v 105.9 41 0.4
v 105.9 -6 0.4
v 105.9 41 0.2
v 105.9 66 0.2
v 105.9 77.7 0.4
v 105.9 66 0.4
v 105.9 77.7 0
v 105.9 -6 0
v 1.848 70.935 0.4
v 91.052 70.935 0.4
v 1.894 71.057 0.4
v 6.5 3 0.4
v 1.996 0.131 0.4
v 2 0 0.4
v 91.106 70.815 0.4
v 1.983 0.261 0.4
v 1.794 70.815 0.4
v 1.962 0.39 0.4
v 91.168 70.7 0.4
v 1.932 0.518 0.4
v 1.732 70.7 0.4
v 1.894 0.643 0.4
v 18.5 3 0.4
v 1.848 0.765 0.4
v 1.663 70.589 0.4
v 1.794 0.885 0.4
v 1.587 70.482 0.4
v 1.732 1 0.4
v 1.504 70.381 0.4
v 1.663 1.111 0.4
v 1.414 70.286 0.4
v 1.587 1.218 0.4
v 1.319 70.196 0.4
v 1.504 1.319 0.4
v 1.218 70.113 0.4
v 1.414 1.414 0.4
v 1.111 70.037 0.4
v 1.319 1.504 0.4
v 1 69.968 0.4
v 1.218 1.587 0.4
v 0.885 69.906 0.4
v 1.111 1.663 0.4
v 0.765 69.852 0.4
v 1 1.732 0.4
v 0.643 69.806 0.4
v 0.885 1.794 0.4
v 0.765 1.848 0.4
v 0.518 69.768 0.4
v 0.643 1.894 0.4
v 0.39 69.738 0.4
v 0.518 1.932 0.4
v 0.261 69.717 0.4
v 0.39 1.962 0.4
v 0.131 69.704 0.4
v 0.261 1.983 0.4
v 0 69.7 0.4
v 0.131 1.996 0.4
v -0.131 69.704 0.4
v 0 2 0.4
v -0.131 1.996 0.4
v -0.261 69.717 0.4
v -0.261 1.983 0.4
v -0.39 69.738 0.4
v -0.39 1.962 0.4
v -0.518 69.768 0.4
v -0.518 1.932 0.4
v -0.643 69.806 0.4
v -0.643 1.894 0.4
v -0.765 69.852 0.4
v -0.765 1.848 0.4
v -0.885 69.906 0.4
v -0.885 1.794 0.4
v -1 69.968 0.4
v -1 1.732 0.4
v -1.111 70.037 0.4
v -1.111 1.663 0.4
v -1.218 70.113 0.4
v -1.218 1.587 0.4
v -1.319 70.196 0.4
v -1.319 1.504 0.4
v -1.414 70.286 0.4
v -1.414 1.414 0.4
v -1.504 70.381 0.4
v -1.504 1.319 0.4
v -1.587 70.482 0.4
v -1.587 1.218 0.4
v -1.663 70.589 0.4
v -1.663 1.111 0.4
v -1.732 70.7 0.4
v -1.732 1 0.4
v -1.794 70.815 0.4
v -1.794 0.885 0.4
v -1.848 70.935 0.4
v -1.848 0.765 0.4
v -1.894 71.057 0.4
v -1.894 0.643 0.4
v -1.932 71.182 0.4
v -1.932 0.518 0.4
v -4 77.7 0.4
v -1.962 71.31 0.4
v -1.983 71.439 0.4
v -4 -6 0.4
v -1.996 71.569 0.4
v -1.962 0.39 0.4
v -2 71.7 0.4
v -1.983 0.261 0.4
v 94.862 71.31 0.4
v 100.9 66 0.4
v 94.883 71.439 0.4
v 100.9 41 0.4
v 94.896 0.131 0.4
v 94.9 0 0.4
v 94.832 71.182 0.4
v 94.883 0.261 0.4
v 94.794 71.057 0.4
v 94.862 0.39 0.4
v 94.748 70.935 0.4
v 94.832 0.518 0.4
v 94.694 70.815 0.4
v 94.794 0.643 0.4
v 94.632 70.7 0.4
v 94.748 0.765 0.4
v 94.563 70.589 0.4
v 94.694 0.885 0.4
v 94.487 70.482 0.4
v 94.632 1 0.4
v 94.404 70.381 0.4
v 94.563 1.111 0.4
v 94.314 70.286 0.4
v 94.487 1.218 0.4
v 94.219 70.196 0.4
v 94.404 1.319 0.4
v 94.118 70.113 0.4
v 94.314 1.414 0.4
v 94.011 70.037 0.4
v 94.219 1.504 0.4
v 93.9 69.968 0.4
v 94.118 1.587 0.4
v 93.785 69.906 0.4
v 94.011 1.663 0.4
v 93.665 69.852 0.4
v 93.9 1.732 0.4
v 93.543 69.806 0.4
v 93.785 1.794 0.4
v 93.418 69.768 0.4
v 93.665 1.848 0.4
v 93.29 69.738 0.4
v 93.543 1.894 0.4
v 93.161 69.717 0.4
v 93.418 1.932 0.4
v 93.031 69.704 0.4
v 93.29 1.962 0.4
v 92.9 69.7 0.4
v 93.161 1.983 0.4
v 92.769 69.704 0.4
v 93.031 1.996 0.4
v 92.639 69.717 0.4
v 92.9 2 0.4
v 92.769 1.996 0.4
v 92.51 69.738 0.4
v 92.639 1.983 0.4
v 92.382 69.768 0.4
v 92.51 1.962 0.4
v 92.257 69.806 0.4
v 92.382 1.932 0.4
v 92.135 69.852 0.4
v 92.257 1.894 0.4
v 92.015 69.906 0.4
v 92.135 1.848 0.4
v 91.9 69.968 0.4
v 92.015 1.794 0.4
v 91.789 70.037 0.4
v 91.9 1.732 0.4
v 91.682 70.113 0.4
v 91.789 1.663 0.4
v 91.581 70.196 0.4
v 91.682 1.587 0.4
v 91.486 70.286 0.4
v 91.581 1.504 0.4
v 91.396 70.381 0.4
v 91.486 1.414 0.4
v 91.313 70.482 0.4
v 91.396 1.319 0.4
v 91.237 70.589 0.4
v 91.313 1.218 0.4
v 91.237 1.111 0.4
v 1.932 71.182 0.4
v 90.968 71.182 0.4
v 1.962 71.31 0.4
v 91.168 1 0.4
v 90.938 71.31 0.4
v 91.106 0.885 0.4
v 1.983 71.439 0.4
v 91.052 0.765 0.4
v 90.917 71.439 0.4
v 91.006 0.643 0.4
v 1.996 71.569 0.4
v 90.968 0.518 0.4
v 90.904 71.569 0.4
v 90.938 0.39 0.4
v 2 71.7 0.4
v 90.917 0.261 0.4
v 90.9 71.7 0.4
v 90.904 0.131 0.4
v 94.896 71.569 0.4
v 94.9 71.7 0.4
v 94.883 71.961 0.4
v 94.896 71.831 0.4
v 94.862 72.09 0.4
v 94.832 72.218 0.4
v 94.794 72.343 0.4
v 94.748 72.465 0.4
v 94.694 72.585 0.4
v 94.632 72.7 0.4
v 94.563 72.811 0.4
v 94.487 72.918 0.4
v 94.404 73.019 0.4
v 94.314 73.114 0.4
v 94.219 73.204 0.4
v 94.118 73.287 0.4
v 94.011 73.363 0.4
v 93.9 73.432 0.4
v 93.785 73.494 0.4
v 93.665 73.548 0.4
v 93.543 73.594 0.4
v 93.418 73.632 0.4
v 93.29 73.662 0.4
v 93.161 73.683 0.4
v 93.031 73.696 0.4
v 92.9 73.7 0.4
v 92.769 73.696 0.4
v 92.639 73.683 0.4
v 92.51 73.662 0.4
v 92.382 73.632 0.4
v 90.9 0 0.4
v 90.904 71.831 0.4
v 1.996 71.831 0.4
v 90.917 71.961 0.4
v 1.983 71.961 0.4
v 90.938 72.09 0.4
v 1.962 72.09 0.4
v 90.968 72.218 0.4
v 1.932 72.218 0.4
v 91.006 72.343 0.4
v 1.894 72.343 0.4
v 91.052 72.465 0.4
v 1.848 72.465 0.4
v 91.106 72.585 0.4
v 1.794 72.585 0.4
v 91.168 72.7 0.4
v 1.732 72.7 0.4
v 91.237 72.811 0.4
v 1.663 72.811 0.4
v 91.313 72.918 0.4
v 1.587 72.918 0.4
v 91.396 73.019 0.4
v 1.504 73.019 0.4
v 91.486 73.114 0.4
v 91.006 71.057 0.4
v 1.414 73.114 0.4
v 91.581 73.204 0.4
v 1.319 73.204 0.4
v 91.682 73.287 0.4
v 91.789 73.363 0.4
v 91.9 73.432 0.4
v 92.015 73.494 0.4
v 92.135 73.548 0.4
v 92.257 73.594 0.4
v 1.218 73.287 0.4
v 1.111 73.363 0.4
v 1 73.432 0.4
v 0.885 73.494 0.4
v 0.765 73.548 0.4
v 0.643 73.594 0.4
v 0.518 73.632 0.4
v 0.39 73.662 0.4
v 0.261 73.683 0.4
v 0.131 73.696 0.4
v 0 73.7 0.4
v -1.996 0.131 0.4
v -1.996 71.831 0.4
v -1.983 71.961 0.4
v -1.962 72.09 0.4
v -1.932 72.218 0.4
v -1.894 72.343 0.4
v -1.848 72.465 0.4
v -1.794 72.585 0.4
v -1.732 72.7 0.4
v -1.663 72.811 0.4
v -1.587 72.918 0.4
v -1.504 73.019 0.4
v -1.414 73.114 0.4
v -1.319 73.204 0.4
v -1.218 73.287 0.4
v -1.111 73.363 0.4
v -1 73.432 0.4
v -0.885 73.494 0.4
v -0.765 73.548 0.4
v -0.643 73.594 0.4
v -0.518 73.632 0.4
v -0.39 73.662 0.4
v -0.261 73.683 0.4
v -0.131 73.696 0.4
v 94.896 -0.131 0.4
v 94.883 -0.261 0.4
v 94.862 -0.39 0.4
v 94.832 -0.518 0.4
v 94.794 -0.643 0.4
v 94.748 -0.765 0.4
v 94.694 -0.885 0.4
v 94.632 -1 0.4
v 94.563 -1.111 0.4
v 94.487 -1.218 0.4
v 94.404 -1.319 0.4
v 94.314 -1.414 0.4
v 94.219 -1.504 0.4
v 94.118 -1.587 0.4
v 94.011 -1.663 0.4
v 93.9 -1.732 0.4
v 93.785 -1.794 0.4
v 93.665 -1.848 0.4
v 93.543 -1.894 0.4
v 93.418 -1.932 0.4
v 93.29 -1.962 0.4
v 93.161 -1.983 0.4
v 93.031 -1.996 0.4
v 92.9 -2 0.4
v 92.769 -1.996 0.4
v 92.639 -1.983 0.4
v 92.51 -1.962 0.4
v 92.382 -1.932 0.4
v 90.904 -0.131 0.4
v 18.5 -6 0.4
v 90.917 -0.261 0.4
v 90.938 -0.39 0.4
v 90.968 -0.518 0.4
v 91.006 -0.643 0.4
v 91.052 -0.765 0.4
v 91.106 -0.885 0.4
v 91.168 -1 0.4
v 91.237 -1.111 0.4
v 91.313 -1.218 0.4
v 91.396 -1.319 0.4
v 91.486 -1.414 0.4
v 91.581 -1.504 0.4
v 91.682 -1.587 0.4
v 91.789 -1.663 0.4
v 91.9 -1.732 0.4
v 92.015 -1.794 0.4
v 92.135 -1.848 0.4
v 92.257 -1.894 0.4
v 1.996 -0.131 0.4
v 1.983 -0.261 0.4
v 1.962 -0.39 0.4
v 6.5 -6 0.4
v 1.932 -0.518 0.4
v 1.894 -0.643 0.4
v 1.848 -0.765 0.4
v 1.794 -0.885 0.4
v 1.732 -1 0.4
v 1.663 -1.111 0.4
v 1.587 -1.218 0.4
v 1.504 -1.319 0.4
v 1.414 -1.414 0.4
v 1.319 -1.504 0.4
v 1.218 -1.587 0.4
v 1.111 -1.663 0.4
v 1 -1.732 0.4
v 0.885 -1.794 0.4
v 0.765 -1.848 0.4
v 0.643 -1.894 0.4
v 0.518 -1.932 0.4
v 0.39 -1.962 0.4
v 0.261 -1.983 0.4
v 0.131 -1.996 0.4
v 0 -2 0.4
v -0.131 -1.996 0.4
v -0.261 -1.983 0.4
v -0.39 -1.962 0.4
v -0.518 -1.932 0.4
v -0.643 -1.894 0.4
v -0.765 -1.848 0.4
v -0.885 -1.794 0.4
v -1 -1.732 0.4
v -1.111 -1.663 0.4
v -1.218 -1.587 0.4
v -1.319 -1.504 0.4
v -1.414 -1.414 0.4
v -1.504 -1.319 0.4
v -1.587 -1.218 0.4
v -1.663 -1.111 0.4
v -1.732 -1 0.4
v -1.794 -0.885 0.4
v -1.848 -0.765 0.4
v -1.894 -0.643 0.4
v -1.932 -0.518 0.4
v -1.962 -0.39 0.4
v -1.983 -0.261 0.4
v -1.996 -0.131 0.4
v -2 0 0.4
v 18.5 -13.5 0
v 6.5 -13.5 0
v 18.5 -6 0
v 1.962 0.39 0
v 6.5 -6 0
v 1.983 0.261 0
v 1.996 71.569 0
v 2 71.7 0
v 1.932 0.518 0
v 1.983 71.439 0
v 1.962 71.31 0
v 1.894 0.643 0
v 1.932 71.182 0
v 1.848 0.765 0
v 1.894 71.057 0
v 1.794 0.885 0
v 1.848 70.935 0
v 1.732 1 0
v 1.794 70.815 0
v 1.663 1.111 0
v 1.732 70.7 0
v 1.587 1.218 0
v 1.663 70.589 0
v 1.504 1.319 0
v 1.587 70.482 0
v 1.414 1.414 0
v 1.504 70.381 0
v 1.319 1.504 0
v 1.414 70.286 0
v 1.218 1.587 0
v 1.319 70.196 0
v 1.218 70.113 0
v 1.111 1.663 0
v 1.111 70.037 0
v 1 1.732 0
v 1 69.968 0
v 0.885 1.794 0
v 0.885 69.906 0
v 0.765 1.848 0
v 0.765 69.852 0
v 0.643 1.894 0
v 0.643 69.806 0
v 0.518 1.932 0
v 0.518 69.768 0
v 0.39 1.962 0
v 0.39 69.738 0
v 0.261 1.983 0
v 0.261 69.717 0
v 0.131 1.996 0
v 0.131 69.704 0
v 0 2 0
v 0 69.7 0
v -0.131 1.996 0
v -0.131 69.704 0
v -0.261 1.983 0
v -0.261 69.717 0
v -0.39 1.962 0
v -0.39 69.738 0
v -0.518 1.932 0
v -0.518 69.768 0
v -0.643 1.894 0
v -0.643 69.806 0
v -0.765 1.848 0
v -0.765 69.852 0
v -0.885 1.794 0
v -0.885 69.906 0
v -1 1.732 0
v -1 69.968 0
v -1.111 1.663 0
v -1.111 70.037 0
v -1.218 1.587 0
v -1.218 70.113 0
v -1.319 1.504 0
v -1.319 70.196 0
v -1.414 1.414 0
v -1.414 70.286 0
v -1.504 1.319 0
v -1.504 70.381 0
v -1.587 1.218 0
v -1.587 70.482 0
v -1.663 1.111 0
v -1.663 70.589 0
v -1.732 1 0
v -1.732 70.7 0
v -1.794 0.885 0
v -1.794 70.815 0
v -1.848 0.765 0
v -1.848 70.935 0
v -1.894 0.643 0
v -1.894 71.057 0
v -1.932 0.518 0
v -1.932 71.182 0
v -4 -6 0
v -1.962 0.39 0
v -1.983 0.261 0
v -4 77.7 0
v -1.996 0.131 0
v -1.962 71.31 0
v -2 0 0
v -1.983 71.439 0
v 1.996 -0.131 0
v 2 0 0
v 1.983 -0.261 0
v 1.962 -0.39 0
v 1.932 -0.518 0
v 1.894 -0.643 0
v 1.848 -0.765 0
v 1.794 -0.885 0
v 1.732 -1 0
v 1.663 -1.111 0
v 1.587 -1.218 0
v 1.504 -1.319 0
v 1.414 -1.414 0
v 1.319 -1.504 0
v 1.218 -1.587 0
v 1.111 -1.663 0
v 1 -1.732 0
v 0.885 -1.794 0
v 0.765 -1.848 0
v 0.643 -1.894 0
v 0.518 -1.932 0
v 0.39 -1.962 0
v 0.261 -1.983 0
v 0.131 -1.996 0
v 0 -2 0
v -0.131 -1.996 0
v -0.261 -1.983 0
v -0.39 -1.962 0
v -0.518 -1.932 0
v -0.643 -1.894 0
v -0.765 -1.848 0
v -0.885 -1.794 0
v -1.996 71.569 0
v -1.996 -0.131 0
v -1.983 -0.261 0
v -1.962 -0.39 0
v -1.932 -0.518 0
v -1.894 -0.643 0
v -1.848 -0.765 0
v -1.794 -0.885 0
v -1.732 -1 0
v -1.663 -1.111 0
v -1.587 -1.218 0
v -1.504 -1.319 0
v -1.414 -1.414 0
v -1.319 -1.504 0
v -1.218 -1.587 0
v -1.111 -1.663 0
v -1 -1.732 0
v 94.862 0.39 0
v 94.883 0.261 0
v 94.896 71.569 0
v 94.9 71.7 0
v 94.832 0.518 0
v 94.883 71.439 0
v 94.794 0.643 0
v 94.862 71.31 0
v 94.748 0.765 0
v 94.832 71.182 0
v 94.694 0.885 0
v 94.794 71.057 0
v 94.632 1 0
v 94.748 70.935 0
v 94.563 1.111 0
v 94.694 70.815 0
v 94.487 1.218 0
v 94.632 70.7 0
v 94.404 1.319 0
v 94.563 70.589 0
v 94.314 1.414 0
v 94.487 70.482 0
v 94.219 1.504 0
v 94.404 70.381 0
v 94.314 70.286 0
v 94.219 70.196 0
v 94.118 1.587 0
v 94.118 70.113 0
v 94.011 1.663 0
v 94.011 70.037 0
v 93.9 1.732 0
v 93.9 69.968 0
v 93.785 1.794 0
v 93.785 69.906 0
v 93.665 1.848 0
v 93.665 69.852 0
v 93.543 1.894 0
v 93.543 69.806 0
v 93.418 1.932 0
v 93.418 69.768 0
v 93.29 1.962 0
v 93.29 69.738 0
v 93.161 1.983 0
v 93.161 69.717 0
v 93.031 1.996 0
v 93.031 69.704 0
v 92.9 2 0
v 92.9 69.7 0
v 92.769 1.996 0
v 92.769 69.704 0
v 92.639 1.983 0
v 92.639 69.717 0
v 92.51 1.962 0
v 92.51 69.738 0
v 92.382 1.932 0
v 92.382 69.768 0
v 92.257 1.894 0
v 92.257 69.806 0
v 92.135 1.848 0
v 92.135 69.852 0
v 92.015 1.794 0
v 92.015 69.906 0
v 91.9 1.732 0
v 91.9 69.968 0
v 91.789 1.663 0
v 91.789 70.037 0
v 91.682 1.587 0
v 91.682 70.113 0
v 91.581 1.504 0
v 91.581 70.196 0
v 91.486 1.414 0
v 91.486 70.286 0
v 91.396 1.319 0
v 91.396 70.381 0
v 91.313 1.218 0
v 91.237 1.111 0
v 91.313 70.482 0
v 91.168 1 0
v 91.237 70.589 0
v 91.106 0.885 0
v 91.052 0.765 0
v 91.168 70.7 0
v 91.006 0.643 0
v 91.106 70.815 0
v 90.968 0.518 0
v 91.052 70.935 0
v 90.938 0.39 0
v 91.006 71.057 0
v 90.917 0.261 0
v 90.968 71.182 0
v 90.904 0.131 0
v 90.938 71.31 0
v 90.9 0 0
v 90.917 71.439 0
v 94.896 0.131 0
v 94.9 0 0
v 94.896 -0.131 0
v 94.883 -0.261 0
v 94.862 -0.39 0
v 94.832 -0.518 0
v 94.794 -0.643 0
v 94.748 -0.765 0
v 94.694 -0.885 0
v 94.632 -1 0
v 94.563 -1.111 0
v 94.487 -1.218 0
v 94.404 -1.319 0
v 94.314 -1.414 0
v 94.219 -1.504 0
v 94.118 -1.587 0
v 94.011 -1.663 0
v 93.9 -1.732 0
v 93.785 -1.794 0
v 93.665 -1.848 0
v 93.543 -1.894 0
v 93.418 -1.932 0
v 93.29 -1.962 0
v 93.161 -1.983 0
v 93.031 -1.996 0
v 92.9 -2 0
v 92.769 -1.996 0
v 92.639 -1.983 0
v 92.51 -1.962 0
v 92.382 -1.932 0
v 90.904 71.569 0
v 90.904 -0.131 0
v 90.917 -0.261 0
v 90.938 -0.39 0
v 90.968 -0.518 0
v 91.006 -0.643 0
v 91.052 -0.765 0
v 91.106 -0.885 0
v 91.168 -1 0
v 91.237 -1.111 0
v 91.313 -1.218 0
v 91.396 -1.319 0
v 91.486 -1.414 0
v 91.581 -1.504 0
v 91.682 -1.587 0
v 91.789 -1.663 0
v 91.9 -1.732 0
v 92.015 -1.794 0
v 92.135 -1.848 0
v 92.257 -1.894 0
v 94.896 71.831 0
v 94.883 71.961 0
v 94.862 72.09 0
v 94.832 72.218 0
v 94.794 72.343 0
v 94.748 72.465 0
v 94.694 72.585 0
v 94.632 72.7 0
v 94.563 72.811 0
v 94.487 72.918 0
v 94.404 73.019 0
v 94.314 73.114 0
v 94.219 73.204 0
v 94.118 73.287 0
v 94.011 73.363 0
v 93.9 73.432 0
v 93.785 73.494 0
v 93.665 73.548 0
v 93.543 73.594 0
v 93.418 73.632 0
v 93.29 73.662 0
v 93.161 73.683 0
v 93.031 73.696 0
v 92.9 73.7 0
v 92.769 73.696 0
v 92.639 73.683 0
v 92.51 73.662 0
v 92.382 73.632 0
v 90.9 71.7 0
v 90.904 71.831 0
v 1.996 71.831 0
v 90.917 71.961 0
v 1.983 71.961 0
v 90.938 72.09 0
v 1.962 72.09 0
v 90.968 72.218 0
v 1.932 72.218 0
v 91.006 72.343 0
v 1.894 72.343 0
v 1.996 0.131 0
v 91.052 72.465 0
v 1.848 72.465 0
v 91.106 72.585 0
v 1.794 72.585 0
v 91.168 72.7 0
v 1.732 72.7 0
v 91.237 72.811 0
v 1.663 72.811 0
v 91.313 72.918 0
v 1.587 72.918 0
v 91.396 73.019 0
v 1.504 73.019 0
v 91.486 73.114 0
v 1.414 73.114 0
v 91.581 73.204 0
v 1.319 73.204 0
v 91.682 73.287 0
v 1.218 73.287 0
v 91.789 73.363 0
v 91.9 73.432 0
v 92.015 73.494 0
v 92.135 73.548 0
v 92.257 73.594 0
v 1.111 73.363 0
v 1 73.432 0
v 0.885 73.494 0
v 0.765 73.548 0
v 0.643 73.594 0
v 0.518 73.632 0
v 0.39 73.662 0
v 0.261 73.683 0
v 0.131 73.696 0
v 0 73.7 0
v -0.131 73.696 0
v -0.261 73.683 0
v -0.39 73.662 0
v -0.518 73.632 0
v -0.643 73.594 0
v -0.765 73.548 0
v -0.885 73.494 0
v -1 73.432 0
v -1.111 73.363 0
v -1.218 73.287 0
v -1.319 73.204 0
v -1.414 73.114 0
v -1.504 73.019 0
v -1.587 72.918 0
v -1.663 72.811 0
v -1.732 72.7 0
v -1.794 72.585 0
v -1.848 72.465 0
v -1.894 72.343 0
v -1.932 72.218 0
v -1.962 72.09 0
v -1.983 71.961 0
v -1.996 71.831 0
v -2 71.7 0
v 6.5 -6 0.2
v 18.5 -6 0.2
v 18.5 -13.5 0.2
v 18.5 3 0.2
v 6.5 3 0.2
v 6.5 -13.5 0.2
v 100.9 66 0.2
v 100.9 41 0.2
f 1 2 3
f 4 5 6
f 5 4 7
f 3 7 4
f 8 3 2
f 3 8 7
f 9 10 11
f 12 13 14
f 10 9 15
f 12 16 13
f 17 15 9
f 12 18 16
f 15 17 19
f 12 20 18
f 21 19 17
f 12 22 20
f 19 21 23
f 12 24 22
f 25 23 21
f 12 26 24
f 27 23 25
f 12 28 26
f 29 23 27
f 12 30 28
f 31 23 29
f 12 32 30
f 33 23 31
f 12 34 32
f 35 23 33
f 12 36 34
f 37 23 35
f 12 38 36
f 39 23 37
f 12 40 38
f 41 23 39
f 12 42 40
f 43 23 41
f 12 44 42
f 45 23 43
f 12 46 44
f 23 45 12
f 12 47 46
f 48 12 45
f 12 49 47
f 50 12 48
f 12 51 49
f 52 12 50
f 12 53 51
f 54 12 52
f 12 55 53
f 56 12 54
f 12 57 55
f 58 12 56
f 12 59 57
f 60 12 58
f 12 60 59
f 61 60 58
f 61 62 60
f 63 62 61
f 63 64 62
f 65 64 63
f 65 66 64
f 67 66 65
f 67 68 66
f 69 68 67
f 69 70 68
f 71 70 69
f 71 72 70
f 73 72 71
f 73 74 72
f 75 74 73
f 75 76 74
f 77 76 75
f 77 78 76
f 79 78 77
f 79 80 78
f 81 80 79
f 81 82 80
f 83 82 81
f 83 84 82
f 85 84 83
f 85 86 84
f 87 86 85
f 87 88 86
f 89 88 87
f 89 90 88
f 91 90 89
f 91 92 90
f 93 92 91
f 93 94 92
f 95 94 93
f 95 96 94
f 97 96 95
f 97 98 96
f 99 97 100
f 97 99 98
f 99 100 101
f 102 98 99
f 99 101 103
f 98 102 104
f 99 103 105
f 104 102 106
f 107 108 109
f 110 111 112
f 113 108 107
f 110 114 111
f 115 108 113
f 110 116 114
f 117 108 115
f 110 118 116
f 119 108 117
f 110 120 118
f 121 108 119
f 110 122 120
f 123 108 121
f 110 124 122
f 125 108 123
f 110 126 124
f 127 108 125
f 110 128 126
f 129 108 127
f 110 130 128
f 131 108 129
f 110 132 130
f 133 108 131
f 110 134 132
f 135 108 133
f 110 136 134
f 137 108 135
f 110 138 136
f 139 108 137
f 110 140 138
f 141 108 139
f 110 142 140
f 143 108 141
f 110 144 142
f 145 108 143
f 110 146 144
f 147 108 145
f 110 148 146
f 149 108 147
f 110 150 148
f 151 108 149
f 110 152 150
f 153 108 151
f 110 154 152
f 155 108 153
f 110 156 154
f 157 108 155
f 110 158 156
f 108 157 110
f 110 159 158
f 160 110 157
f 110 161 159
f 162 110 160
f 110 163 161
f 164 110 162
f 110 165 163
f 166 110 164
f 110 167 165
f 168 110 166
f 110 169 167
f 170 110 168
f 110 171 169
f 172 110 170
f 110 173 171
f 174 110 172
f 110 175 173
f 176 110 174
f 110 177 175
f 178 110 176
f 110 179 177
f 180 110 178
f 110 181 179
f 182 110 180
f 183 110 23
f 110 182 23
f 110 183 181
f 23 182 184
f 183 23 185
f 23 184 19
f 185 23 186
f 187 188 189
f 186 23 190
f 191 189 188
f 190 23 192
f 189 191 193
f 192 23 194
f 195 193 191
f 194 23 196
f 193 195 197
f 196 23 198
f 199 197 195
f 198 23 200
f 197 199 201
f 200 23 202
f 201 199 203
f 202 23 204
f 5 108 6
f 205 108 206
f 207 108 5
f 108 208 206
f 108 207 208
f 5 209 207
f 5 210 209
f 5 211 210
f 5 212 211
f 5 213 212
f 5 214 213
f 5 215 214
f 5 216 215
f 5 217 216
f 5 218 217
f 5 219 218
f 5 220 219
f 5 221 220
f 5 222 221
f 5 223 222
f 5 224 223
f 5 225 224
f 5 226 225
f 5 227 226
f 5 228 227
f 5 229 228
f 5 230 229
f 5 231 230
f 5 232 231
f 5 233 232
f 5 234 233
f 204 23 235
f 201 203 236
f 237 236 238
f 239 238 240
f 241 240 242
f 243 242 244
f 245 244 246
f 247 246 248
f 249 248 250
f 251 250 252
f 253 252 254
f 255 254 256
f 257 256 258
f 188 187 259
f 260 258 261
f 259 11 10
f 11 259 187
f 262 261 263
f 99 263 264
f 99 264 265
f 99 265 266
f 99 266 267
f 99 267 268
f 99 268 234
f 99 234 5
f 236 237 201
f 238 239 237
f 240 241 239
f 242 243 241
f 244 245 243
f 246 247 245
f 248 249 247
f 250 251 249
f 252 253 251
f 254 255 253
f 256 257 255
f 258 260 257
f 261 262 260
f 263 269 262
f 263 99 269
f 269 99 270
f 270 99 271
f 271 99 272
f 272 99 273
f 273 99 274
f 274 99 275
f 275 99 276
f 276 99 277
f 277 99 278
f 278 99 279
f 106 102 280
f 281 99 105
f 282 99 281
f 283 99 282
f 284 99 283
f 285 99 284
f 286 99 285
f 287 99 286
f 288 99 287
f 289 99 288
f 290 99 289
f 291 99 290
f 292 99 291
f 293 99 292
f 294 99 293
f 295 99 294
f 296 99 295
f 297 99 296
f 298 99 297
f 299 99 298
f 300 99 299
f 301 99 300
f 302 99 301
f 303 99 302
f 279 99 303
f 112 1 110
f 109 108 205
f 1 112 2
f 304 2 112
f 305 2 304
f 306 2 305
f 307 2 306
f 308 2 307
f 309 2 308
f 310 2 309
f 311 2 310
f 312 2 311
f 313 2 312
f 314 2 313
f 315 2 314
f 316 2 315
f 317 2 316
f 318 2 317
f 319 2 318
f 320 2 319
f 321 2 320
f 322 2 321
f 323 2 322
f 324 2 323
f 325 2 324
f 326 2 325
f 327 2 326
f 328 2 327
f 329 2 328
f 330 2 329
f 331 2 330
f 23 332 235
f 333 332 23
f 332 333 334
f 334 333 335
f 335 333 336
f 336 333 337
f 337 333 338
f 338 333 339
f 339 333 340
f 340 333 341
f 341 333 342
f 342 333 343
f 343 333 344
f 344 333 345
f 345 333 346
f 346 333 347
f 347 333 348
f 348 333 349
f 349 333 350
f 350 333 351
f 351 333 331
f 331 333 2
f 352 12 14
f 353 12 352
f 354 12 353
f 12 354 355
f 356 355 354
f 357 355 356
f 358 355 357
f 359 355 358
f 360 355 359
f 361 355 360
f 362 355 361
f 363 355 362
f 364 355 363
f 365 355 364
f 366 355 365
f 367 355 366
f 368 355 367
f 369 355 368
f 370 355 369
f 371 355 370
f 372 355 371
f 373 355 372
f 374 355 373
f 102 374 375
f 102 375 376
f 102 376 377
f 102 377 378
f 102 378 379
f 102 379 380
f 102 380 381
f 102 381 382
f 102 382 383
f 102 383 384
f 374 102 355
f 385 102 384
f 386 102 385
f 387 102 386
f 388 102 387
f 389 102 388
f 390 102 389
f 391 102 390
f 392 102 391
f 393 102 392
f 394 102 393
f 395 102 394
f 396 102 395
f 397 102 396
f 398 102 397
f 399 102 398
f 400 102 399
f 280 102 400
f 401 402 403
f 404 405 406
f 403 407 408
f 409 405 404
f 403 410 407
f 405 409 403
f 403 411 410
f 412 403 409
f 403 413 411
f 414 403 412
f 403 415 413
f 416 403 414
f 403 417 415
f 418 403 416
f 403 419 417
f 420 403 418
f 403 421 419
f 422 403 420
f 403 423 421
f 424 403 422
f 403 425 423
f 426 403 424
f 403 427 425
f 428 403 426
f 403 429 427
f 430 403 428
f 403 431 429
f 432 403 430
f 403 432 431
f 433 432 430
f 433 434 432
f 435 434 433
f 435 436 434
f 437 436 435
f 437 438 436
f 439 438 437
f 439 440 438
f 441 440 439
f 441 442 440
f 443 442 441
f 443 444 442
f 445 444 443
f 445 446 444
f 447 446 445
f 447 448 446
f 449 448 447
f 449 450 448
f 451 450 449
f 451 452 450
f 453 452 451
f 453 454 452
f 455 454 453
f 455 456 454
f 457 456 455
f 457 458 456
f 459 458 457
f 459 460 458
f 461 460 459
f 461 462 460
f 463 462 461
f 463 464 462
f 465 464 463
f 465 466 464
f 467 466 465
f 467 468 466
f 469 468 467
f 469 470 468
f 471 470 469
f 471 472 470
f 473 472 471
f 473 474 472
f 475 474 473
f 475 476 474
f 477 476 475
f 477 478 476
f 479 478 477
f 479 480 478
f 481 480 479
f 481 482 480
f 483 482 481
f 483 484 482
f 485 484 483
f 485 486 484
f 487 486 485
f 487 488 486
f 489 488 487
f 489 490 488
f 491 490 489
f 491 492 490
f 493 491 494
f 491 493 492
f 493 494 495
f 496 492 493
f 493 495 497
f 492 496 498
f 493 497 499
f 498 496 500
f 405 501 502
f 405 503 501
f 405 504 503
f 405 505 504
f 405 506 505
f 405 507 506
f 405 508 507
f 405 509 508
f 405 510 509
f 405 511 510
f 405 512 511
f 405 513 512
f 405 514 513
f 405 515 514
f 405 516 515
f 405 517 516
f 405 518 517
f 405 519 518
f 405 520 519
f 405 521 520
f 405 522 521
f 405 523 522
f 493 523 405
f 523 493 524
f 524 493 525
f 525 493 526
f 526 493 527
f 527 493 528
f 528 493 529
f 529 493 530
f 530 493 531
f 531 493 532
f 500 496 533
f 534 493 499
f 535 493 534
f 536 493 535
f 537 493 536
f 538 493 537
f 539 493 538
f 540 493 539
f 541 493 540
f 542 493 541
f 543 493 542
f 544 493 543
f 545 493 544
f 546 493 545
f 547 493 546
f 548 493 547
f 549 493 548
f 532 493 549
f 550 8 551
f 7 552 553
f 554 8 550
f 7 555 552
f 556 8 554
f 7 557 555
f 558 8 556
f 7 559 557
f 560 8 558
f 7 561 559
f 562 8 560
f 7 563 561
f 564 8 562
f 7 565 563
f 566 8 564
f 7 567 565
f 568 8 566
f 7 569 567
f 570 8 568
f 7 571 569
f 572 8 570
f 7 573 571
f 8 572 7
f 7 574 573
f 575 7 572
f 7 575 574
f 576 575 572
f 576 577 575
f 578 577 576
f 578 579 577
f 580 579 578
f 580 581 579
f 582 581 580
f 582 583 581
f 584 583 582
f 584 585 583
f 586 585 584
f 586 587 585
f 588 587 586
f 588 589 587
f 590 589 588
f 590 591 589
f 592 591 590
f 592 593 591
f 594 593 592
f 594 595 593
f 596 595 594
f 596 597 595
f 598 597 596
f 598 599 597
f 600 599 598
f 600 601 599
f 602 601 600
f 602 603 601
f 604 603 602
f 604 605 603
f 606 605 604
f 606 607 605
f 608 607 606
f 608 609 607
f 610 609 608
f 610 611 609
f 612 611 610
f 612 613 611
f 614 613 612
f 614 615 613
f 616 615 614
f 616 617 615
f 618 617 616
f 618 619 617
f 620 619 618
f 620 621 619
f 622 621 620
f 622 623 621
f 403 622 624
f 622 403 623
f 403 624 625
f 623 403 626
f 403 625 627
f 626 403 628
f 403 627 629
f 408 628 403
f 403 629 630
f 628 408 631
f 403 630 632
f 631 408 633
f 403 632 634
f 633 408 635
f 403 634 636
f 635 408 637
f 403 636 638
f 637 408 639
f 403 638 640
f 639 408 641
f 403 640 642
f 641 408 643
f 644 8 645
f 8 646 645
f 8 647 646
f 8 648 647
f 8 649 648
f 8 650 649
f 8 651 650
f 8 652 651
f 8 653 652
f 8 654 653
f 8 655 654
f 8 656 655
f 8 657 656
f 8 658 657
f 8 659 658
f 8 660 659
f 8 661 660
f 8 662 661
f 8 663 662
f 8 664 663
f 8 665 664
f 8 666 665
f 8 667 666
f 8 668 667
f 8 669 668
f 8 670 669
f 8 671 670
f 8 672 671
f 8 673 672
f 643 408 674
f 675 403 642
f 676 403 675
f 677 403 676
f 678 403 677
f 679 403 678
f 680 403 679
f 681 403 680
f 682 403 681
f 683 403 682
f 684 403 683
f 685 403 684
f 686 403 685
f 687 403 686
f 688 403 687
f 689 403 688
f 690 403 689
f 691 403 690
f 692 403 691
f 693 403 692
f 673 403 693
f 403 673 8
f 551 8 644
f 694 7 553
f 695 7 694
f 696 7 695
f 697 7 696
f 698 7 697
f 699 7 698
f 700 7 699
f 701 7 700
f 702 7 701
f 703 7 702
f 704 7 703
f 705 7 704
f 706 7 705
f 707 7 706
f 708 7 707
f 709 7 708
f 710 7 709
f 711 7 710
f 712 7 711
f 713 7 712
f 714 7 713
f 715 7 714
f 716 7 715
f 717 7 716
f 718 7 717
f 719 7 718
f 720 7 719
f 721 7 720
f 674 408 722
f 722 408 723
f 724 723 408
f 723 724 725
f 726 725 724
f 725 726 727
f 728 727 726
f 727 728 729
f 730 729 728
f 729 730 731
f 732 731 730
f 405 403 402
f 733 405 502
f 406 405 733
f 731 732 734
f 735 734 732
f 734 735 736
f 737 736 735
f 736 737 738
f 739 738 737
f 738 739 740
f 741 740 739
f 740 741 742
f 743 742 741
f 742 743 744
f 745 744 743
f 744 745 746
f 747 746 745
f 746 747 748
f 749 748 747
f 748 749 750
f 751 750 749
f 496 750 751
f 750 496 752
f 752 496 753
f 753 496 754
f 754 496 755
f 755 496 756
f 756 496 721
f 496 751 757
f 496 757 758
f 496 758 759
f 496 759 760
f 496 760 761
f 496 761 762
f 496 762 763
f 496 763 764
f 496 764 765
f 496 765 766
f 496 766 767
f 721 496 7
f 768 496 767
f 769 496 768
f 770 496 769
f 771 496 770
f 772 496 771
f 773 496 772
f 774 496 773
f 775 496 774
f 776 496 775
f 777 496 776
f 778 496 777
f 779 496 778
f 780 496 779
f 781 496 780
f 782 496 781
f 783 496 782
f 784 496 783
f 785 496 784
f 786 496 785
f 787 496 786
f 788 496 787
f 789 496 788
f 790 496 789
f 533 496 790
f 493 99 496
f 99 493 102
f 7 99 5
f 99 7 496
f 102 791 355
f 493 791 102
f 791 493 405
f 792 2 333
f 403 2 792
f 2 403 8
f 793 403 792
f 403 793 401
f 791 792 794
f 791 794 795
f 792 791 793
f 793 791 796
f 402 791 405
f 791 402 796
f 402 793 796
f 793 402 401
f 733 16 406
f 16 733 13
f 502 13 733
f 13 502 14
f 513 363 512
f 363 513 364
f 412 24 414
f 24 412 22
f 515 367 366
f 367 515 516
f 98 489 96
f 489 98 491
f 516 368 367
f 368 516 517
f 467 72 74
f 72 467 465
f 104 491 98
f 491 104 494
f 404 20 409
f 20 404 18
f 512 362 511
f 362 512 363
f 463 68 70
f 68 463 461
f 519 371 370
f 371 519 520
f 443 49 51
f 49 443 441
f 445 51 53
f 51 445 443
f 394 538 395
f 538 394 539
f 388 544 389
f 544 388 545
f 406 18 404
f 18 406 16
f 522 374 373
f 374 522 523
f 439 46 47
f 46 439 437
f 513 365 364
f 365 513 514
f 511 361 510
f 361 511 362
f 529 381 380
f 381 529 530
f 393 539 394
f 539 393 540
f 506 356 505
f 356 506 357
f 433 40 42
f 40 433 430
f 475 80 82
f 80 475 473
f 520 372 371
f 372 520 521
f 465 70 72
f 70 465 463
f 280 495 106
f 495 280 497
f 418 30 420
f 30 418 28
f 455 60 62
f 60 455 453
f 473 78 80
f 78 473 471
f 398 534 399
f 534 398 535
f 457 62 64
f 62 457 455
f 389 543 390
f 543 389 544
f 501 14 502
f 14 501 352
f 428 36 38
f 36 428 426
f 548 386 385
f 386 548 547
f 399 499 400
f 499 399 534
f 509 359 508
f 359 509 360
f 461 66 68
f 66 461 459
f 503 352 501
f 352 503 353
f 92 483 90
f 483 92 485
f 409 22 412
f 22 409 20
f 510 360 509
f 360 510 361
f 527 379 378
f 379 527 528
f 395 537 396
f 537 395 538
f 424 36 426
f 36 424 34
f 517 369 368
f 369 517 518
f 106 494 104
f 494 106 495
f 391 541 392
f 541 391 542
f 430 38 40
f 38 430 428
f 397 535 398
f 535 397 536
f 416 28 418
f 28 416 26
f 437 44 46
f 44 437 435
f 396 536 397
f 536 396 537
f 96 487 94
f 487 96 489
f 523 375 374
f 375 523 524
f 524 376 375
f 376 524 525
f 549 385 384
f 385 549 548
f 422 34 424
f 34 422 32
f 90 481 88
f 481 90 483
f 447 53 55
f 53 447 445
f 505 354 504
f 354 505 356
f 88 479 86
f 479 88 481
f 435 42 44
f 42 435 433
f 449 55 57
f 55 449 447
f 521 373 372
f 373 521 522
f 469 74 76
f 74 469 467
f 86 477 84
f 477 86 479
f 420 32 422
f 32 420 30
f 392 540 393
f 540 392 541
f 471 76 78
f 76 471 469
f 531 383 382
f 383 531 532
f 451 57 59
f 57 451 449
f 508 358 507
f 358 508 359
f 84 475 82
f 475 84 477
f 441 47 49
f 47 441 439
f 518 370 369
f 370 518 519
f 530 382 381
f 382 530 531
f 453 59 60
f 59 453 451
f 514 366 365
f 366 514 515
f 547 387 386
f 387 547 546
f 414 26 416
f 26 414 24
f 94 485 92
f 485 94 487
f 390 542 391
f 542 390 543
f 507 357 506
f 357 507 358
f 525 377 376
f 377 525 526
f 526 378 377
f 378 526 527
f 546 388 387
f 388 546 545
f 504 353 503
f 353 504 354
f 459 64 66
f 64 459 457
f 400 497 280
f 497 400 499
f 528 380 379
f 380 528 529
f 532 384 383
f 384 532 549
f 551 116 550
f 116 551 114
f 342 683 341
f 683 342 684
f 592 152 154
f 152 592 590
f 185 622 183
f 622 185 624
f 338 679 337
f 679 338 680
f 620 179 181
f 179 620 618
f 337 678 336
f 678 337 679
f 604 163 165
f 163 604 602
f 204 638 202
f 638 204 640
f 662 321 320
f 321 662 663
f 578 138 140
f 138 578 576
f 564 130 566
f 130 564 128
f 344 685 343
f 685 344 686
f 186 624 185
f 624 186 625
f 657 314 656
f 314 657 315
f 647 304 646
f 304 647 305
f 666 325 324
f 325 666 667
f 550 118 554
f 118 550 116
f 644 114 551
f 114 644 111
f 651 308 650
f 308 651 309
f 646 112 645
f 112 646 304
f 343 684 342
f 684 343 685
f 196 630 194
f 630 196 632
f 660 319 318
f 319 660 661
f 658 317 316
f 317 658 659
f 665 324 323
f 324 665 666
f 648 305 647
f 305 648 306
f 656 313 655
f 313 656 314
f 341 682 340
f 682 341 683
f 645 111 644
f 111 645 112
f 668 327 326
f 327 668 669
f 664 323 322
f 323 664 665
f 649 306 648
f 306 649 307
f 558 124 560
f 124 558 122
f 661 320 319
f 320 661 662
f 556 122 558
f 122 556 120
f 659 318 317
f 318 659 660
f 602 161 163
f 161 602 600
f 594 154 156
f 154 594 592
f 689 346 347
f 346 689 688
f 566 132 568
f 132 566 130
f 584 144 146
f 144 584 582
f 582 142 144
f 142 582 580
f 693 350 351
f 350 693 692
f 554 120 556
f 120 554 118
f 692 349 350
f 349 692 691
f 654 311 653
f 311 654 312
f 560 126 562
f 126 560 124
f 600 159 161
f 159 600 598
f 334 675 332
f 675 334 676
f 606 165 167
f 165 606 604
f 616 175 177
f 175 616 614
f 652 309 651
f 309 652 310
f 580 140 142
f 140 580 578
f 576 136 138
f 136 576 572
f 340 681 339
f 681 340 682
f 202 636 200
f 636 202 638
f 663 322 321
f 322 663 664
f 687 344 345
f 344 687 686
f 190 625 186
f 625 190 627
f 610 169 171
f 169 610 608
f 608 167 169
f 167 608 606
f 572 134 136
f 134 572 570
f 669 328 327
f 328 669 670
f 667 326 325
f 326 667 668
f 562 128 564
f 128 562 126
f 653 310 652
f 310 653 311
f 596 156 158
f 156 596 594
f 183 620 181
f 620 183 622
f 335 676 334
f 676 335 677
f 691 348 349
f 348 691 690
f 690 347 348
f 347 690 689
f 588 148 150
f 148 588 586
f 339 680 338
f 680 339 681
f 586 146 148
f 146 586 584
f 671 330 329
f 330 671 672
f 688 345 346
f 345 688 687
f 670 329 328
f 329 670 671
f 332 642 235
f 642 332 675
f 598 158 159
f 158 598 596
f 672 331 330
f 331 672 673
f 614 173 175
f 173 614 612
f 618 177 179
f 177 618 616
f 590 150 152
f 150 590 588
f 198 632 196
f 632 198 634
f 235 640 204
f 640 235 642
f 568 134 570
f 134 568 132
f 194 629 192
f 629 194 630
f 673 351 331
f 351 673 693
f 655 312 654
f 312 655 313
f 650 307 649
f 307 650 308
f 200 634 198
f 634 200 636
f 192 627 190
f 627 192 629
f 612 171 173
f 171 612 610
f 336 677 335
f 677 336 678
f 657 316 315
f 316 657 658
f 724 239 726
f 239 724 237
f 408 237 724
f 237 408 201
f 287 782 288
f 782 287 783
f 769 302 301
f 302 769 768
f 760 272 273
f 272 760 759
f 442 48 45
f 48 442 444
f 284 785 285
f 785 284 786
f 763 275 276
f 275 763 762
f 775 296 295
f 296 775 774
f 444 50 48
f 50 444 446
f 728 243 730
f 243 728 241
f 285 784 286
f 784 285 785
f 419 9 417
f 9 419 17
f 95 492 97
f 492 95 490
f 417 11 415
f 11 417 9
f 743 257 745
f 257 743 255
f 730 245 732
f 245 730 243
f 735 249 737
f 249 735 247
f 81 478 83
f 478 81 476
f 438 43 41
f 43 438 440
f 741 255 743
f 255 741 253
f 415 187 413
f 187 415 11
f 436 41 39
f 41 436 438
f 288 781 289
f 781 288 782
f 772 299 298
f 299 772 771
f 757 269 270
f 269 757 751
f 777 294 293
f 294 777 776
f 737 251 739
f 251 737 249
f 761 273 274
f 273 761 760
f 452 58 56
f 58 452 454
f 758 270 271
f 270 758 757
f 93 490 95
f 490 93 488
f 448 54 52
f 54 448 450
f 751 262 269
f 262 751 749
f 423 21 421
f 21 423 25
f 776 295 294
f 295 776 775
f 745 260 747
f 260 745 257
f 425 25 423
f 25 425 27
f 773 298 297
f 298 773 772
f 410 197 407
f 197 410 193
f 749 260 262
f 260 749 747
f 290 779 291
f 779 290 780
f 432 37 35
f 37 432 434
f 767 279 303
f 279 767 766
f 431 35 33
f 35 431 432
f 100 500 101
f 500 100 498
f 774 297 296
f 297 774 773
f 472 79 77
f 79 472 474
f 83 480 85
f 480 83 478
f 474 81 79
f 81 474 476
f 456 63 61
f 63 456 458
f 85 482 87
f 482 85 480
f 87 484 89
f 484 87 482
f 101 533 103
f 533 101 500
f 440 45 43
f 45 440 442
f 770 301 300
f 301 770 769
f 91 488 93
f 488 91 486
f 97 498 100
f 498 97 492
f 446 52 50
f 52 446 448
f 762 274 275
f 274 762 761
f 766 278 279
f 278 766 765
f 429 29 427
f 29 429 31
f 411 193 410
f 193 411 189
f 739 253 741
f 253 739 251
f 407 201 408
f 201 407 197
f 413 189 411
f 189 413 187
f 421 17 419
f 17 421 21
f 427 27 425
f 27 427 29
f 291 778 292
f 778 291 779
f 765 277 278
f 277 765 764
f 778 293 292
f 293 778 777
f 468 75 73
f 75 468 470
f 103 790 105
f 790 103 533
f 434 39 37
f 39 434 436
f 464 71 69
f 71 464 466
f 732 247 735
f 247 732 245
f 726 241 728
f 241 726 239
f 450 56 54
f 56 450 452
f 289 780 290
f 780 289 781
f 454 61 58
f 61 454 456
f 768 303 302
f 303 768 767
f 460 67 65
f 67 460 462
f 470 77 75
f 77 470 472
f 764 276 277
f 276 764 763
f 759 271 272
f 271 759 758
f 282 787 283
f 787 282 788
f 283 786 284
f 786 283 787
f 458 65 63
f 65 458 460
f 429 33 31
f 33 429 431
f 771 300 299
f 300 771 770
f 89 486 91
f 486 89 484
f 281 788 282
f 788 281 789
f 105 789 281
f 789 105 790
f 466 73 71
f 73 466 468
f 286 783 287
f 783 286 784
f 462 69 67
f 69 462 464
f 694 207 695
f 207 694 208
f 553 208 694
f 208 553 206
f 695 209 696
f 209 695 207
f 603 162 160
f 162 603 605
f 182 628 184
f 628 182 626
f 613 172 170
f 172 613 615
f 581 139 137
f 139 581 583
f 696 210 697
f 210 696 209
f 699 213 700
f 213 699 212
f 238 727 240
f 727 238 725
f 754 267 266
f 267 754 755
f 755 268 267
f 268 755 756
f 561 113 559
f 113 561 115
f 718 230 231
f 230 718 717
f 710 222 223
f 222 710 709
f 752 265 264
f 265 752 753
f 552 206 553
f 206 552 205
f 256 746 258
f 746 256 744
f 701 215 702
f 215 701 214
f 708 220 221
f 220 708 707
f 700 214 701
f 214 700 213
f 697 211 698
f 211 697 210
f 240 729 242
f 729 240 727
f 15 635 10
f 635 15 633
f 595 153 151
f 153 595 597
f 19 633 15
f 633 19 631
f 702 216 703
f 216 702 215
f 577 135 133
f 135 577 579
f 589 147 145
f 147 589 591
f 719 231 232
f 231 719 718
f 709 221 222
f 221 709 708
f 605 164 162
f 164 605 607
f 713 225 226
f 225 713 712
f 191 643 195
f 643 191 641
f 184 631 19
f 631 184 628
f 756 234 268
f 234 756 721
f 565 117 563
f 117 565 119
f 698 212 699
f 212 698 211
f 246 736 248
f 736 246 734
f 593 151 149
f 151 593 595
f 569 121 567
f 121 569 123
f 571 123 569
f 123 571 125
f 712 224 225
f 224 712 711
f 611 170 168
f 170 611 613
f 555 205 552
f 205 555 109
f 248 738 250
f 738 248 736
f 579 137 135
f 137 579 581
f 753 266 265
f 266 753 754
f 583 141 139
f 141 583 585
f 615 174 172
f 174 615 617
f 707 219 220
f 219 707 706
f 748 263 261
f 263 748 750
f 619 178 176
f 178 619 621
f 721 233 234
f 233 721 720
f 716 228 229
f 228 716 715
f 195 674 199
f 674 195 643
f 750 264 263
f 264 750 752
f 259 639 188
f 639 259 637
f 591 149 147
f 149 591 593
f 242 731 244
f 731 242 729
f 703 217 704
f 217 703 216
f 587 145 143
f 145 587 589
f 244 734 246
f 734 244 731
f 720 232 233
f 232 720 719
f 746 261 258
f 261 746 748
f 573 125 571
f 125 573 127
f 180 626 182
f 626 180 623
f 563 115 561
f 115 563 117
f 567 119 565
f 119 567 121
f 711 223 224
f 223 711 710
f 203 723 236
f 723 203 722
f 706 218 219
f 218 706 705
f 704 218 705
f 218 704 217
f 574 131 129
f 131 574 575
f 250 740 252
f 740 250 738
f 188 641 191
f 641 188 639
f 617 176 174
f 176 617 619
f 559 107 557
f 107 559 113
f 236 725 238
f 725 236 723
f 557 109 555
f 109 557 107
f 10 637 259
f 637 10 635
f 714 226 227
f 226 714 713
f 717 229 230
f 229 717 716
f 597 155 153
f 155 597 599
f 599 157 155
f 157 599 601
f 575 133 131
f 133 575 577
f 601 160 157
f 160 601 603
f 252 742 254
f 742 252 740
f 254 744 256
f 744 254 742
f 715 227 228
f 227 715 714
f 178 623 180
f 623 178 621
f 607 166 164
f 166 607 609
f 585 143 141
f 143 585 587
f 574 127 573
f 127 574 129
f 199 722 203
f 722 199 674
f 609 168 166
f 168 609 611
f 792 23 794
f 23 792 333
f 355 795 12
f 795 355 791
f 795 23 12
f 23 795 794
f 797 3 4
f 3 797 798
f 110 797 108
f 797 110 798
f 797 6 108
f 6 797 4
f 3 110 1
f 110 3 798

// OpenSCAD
$fn = 96;

//Mounting hole parameters
HOLE_RADIUS = 2;
HOLE_Y_OFFSET = 71.7;
HOLE_X_OFFSET = 92.9;

//Circuit board parameters - Relative position to centre of mounting holes
BOARD_L_OFFSET = HOLE_RADIUS + 2;  //Left offset
BOARD_R_OFFSET = HOLE_RADIUS + 11; //Right offset
BOARD_B_OFFSET = HOLE_RADIUS + 4;  //Bottom offset
BOARD_T_OFFSET = HOLE_RADIUS + 4;  //Top offset
BOARD_Z = 0.4; // = 1.7; //Thickness of circuit board

//USB-B port parameters
USB_X_OFFSET = 6.5;
USB_PROTRUSION = 7.5;
USB_LENGTH = 16.5;
USB_WIDTH = 12;

//40-pin LCD port parameters
LCD_PORT_Y_OFFSET = 41;
LCD_PORT_LENGTH = 5;
LCD_PORT_WIDTH = 25;

//Size of circuit board, calculated from mounting hole and circuit board parameters
boardX = BOARD_L_OFFSET + HOLE_X_OFFSET + BOARD_R_OFFSET;
boardY = BOARD_B_OFFSET + HOLE_Y_OFFSET + BOARD_T_OFFSET;

difference() {
	union() {
		//Circuit board
		translate([-BOARD_L_OFFSET, -BOARD_B_OFFSET]) cube([boardX, boardY, BOARD_Z]);

		//USB port
		translate([USB_X_OFFSET, -BOARD_B_OFFSET-USB_PROTRUSION, 0]) cube([USB_WIDTH, USB_LENGTH, BOARD_Z/2]); //USB Port
	}
	union() {
		//Mounting holes
		translate([0, 0, 0]) cylinder(r=HOLE_RADIUS, h=BOARD_Z); //Bottom left
		translate([HOLE_X_OFFSET, 0, 0]) cylinder(r=HOLE_RADIUS, h=BOARD_Z); //Bottom right
		translate([0, HOLE_Y_OFFSET, 0]) cylinder(r=HOLE_RADIUS, h=BOARD_Z); //Top left
		translate([HOLE_X_OFFSET, HOLE_Y_OFFSET, 0]) cylinder(r=HOLE_RADIUS, h=BOARD_Z); //Top Right

		//USB port
		translate([USB_X_OFFSET, -BOARD_B_OFFSET-USB_PROTRUSION, BOARD_Z/2]) cube([USB_WIDTH, USB_LENGTH, BOARD_Z/2]); //USB Port

		//LCD port
		translate([HOLE_X_OFFSET+BOARD_R_OFFSET-LCD_PORT_LENGTH, LCD_PORT_Y_OFFSET, BOARD_Z/2]) cube([LCD_PORT_LENGTH, LCD_PORT_WIDTH, BOARD_Z/2]); //LCD Port
	}
}
